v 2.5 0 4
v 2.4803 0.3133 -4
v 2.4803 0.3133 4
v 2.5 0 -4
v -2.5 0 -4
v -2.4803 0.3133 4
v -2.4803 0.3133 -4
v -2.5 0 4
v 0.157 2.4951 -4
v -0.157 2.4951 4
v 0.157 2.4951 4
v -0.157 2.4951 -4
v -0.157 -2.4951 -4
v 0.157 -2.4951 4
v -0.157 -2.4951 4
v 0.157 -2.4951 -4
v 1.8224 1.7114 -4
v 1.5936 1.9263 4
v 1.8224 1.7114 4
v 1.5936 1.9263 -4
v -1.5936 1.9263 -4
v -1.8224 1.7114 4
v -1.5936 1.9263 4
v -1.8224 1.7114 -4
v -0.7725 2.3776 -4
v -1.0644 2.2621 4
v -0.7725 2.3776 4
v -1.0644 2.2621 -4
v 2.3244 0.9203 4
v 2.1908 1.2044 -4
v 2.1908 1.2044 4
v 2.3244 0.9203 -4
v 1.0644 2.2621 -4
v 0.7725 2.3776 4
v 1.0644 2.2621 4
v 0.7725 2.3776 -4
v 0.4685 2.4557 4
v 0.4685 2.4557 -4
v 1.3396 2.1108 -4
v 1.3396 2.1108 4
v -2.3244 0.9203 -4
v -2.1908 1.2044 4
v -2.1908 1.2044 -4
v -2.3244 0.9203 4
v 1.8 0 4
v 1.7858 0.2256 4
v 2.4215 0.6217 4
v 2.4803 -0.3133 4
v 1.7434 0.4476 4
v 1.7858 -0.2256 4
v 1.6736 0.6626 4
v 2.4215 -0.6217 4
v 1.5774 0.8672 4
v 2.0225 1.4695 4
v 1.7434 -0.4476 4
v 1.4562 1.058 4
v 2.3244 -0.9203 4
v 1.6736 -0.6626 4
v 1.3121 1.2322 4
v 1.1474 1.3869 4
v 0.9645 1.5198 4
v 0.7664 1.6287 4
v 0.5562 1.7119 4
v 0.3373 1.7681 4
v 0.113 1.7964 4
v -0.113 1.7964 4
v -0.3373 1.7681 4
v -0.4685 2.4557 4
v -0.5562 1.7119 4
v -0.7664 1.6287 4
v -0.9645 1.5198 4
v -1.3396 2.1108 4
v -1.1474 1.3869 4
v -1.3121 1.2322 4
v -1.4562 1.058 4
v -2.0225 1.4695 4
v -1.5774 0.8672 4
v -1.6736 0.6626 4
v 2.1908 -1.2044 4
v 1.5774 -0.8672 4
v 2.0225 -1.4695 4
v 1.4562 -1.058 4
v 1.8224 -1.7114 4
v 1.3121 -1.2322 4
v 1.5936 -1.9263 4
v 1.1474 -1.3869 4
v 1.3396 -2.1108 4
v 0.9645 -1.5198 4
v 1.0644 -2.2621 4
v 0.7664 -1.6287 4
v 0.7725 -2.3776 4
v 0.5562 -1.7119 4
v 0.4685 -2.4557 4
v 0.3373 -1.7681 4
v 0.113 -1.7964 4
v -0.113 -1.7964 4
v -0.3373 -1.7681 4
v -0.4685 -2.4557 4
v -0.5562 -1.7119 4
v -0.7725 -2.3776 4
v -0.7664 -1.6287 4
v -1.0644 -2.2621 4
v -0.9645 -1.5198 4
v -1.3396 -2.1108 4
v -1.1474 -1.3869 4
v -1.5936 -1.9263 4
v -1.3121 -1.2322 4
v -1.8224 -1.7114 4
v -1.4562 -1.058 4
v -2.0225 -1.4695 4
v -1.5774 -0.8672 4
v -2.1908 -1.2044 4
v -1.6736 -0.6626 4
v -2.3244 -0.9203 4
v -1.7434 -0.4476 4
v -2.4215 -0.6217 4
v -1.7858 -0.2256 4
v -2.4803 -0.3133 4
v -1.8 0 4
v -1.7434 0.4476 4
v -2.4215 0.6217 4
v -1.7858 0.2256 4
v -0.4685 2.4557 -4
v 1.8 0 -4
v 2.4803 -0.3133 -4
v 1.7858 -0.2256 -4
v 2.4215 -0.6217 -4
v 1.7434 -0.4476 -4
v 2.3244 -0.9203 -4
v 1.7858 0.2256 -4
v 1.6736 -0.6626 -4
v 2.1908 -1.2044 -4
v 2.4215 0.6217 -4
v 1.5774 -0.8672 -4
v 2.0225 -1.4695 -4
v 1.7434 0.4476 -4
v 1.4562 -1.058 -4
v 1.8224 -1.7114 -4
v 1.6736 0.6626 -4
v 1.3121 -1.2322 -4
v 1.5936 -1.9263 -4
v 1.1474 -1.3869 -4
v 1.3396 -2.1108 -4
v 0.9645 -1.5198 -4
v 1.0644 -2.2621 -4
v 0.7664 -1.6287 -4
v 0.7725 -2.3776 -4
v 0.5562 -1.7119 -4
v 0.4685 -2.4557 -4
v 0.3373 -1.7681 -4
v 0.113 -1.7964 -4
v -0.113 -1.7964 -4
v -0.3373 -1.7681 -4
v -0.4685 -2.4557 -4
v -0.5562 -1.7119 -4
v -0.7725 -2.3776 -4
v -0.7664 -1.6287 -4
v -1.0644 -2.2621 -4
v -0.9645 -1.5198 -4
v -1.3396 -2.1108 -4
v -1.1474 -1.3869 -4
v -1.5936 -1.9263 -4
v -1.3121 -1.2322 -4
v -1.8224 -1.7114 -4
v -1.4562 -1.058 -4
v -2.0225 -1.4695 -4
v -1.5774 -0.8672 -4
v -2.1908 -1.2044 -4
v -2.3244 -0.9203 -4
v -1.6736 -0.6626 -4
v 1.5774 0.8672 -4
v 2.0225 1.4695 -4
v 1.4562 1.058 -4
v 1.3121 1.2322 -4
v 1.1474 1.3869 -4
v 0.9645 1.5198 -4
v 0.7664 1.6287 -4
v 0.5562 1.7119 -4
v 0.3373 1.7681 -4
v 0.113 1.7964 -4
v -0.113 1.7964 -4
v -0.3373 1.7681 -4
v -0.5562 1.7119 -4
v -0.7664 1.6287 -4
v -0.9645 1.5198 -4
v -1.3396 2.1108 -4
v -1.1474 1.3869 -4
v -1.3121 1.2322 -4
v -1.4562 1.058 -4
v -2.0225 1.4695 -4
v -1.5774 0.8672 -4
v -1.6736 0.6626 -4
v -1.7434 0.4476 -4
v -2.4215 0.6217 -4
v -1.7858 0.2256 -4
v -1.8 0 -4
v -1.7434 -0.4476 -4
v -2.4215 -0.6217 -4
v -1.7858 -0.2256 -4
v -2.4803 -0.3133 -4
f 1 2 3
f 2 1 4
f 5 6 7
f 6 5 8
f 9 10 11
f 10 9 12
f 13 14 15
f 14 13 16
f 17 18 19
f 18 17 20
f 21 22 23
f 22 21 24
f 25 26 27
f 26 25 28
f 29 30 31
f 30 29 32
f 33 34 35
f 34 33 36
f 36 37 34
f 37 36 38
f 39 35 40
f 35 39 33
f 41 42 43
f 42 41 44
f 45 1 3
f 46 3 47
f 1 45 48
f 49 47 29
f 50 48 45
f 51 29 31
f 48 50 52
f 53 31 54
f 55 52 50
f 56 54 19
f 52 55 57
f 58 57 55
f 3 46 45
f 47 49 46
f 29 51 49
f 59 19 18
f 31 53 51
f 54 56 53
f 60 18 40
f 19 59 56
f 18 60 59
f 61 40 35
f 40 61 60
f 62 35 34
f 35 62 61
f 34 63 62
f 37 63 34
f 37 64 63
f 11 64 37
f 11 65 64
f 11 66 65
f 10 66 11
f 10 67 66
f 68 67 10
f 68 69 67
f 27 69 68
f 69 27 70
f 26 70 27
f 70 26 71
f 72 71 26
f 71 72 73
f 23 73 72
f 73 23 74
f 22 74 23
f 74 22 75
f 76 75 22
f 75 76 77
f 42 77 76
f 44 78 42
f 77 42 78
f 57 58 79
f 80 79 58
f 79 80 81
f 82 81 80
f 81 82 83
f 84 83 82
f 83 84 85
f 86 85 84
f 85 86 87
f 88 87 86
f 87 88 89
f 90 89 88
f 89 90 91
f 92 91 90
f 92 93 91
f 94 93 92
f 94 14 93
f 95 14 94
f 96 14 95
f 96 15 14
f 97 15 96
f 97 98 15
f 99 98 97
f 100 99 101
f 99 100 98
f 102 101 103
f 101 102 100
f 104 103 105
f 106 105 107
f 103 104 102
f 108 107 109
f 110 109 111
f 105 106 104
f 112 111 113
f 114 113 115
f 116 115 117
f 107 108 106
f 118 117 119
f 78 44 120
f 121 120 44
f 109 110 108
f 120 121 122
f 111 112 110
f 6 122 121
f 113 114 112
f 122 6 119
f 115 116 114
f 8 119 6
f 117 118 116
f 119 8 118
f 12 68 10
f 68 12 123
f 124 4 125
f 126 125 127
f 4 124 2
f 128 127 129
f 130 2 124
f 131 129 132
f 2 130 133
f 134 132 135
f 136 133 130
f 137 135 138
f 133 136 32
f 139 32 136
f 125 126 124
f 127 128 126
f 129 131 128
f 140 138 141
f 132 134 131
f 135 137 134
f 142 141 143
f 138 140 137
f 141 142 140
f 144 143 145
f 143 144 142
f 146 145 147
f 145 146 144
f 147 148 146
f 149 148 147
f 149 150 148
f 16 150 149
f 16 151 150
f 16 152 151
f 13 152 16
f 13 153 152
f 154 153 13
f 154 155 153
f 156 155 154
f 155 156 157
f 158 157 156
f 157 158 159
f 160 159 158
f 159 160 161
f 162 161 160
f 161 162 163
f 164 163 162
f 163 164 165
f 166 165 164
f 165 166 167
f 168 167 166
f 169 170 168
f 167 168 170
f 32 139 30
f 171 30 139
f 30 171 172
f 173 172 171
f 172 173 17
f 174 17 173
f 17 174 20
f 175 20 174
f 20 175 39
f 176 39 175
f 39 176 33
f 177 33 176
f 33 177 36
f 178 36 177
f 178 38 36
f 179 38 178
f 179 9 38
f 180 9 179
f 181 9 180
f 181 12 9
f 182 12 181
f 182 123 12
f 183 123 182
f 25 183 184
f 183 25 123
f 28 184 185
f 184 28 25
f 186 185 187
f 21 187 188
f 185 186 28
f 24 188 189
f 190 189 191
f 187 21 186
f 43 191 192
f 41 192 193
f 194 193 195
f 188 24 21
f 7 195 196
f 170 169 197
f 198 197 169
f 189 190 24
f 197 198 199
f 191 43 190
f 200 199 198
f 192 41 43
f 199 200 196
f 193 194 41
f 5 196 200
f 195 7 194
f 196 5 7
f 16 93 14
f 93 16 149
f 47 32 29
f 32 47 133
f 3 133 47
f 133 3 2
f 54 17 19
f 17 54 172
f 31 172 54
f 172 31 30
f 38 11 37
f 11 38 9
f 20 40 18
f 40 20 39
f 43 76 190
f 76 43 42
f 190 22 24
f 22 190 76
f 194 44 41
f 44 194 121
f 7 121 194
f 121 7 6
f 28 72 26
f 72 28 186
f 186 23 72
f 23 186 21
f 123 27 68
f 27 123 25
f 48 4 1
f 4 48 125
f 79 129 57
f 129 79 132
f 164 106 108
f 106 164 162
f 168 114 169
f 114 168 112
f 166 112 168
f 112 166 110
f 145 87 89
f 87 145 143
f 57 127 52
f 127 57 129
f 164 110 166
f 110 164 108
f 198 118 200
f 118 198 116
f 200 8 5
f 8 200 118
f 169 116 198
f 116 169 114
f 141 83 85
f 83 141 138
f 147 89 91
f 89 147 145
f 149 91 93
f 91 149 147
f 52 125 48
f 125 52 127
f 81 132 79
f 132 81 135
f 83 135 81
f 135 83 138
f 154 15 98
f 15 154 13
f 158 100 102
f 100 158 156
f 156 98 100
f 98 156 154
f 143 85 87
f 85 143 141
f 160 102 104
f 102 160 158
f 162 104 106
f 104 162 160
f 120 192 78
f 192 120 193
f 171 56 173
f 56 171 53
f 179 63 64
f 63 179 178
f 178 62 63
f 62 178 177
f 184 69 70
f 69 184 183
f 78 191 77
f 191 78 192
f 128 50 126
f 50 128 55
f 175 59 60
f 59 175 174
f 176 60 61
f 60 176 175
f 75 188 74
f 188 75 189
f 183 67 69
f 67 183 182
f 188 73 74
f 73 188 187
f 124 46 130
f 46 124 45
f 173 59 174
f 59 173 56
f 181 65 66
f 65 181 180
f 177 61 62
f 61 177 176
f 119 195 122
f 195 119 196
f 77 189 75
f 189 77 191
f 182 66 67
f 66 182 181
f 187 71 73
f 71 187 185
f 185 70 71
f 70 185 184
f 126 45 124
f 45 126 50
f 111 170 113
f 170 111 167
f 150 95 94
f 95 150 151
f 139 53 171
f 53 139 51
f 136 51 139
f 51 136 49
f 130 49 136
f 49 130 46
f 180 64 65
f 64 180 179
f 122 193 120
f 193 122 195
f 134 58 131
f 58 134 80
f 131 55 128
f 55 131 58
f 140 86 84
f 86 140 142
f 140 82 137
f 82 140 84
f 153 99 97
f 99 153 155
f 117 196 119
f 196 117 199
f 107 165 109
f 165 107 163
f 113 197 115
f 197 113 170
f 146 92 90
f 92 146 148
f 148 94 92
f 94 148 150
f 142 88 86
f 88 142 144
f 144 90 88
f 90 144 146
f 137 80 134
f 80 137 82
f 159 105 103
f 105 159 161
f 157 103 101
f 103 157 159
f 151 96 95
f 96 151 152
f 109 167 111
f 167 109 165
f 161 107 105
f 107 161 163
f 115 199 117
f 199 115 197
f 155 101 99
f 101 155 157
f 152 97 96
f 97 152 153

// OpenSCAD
$fn = 50;


difference() {
	union() {
		translate(v = [0, 0, -4.0000000000]) {
			cylinder(h = 8, r = 2.5000000000);
		}
	}
	union() {
		translate(v = [0, 0, -100.0000000000]) {
			cylinder(h = 200, r = 1.8000000000);
		}
	}
}
